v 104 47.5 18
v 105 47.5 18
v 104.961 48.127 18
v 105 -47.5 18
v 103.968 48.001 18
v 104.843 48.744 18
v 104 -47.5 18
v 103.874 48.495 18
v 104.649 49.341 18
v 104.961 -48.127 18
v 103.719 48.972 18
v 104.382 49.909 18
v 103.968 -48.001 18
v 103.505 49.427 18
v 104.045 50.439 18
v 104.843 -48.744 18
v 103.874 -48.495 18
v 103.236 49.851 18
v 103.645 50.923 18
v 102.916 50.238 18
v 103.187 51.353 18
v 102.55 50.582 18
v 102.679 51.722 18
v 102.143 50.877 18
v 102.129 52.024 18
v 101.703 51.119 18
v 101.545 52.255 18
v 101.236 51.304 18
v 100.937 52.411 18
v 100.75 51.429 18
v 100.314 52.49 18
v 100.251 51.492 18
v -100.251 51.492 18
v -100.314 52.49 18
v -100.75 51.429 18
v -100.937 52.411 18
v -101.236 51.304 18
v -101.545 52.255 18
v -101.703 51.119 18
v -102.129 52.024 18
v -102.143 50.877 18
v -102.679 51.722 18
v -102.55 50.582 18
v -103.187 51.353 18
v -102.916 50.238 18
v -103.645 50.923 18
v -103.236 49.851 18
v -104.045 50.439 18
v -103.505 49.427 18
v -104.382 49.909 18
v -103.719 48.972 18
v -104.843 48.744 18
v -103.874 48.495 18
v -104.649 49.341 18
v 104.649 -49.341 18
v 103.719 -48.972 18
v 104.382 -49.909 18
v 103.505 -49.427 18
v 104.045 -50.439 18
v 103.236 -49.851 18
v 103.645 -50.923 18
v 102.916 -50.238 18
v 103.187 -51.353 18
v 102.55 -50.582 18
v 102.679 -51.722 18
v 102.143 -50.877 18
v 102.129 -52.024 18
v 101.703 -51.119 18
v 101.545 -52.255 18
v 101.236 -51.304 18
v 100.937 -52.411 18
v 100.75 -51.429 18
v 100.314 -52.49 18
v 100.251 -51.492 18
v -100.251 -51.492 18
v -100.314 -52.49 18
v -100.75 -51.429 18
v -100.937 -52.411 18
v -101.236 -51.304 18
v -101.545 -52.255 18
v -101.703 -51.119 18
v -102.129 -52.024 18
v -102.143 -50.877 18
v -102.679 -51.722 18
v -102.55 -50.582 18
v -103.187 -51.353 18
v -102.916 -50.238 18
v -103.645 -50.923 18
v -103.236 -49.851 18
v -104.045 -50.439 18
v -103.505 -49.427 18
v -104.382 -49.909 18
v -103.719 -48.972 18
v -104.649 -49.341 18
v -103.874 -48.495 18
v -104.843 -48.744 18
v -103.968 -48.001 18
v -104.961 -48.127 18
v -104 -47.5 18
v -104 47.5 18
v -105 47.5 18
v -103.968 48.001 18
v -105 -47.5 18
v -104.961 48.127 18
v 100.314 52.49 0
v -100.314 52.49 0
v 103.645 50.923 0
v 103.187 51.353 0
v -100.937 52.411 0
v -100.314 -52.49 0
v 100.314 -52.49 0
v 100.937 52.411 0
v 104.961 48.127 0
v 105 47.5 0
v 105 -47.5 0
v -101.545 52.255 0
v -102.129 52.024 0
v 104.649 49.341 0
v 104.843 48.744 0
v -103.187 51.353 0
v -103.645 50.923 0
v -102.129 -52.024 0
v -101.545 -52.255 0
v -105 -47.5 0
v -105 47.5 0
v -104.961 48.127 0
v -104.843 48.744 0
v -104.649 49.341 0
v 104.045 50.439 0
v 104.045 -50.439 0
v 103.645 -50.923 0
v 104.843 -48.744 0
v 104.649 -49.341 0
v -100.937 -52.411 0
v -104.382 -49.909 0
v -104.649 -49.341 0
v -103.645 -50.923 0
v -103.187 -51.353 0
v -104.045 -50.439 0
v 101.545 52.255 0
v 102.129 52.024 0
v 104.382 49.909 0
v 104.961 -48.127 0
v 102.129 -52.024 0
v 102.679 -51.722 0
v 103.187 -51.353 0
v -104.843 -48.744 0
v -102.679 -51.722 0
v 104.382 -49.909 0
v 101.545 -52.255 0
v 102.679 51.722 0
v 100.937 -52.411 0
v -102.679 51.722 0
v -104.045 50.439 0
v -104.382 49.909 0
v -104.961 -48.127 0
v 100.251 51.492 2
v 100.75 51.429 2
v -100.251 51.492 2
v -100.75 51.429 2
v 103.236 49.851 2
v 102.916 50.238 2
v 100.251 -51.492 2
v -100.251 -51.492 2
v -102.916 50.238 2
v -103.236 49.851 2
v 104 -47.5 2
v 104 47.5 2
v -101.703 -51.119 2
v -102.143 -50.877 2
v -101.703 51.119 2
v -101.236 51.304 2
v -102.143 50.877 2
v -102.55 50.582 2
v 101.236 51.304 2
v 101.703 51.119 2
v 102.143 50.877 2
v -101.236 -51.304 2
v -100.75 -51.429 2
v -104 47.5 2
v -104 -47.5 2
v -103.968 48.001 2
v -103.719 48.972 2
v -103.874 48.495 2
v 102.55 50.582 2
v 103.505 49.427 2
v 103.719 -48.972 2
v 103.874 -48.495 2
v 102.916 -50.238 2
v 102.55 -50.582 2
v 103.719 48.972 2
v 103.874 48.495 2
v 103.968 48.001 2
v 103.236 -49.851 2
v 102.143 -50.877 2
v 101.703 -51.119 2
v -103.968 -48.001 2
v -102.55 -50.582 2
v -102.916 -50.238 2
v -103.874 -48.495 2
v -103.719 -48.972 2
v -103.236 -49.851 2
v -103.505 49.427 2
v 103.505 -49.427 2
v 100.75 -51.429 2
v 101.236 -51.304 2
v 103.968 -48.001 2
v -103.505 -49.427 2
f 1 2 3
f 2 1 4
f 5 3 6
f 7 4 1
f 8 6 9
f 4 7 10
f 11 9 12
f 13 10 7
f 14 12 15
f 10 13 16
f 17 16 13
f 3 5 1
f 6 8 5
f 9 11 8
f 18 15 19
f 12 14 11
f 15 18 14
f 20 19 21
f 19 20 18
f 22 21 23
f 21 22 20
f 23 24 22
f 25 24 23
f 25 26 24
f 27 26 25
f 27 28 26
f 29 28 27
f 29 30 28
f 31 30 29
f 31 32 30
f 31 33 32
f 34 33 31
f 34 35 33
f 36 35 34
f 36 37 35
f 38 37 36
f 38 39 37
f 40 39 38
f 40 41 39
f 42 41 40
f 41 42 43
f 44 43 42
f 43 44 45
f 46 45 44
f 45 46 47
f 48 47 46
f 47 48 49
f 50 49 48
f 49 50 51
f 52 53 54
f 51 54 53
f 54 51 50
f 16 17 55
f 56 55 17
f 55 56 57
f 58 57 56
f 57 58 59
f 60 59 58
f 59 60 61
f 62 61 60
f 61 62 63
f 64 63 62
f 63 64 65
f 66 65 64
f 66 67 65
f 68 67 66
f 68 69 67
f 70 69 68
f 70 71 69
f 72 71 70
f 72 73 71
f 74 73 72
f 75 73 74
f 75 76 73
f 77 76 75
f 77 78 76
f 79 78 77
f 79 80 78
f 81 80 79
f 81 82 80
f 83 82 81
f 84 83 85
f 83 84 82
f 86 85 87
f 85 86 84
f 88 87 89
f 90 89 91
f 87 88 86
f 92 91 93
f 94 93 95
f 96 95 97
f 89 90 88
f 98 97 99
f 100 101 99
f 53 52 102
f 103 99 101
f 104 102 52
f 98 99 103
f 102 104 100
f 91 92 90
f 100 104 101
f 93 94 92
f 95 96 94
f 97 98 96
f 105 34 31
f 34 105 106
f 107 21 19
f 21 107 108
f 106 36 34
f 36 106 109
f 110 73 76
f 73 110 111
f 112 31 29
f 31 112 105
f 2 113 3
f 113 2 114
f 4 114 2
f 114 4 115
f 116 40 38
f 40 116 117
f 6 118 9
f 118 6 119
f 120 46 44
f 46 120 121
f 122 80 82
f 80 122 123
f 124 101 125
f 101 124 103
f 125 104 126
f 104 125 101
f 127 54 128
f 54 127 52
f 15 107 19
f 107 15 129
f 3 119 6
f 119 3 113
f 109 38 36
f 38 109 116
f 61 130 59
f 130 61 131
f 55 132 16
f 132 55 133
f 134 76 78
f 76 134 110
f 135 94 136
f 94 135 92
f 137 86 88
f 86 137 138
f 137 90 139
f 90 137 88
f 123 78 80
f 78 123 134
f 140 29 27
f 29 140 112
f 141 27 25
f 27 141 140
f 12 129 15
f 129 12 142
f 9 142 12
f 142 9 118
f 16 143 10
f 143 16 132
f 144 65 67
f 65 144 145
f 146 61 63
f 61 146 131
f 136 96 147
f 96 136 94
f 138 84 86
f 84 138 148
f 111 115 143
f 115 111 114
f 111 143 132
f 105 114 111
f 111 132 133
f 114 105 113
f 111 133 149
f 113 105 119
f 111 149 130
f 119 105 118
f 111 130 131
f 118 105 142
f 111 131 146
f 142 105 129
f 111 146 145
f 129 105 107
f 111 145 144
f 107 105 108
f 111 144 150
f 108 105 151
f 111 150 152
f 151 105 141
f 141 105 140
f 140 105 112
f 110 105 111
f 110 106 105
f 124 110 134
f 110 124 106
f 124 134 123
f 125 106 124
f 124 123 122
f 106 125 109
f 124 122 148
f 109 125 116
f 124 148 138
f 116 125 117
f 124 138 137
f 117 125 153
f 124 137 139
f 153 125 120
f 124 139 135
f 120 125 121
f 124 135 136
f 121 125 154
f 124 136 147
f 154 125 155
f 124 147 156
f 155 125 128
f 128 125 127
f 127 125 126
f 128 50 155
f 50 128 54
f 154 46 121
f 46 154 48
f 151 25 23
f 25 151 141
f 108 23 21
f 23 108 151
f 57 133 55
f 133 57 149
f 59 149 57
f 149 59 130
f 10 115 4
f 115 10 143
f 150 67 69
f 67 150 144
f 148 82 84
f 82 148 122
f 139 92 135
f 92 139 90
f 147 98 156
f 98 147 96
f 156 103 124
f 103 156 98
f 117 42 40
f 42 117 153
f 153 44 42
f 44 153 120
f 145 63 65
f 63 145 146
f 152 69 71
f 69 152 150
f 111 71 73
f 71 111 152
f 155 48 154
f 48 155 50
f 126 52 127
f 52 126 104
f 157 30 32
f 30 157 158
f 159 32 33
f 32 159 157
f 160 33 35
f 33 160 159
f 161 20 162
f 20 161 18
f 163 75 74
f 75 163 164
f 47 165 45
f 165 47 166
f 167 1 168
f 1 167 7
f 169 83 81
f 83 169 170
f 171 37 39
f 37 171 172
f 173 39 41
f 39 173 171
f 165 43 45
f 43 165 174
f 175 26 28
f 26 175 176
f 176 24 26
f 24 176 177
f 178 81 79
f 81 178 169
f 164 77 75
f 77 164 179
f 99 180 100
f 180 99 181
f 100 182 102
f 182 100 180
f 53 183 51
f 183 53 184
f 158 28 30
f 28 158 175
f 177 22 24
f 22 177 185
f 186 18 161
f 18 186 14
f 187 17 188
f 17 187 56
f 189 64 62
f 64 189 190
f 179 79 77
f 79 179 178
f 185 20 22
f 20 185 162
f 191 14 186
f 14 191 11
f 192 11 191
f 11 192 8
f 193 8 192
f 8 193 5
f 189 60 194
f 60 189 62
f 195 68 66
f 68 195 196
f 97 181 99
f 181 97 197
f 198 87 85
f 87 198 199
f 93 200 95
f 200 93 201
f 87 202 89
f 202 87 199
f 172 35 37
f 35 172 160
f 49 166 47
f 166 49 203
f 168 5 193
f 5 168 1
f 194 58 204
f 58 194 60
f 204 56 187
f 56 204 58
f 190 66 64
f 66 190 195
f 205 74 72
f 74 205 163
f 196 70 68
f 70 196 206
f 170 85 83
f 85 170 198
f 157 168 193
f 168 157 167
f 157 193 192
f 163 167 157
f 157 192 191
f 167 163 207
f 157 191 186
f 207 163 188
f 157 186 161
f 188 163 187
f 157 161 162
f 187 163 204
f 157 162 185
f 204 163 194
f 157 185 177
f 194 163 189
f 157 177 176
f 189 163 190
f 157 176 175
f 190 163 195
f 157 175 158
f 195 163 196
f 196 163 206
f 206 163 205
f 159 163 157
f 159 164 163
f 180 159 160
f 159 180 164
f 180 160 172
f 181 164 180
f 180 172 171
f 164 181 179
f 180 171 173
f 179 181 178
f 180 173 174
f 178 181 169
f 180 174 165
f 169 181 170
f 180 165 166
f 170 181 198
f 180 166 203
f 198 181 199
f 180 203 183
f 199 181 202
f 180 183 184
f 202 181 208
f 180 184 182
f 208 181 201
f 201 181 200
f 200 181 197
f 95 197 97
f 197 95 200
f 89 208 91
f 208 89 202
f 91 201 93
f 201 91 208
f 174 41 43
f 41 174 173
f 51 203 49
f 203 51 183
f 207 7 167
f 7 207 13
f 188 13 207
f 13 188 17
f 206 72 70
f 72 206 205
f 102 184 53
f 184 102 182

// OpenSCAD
$fn = 50;


difference() {
	union() {
		hull() {
			translate(v = [-100.0000000000, 47.5000000000, 0]) {
				cylinder(h = 18, r = 5);
			}
			translate(v = [100.0000000000, 47.5000000000, 0]) {
				cylinder(h = 18, r = 5);
			}
			translate(v = [-100.0000000000, -47.5000000000, 0]) {
				cylinder(h = 18, r = 5);
			}
			translate(v = [100.0000000000, -47.5000000000, 0]) {
				cylinder(h = 18, r = 5);
			}
		}
	}
	union() {
		translate(v = [0, 0, 2]) {
			hull() {
				translate(v = [-100.0000000000, 47.5000000000, 0]) {
					cylinder(h = 16, r = 4);
				}
				translate(v = [100.0000000000, 47.5000000000, 0]) {
					cylinder(h = 16, r = 4);
				}
				translate(v = [-100.0000000000, -47.5000000000, 0]) {
					cylinder(h = 16, r = 4);
				}
				translate(v = [100.0000000000, -47.5000000000, 0]) {
					cylinder(h = 16, r = 4);
				}
			}
		}
	}
}
